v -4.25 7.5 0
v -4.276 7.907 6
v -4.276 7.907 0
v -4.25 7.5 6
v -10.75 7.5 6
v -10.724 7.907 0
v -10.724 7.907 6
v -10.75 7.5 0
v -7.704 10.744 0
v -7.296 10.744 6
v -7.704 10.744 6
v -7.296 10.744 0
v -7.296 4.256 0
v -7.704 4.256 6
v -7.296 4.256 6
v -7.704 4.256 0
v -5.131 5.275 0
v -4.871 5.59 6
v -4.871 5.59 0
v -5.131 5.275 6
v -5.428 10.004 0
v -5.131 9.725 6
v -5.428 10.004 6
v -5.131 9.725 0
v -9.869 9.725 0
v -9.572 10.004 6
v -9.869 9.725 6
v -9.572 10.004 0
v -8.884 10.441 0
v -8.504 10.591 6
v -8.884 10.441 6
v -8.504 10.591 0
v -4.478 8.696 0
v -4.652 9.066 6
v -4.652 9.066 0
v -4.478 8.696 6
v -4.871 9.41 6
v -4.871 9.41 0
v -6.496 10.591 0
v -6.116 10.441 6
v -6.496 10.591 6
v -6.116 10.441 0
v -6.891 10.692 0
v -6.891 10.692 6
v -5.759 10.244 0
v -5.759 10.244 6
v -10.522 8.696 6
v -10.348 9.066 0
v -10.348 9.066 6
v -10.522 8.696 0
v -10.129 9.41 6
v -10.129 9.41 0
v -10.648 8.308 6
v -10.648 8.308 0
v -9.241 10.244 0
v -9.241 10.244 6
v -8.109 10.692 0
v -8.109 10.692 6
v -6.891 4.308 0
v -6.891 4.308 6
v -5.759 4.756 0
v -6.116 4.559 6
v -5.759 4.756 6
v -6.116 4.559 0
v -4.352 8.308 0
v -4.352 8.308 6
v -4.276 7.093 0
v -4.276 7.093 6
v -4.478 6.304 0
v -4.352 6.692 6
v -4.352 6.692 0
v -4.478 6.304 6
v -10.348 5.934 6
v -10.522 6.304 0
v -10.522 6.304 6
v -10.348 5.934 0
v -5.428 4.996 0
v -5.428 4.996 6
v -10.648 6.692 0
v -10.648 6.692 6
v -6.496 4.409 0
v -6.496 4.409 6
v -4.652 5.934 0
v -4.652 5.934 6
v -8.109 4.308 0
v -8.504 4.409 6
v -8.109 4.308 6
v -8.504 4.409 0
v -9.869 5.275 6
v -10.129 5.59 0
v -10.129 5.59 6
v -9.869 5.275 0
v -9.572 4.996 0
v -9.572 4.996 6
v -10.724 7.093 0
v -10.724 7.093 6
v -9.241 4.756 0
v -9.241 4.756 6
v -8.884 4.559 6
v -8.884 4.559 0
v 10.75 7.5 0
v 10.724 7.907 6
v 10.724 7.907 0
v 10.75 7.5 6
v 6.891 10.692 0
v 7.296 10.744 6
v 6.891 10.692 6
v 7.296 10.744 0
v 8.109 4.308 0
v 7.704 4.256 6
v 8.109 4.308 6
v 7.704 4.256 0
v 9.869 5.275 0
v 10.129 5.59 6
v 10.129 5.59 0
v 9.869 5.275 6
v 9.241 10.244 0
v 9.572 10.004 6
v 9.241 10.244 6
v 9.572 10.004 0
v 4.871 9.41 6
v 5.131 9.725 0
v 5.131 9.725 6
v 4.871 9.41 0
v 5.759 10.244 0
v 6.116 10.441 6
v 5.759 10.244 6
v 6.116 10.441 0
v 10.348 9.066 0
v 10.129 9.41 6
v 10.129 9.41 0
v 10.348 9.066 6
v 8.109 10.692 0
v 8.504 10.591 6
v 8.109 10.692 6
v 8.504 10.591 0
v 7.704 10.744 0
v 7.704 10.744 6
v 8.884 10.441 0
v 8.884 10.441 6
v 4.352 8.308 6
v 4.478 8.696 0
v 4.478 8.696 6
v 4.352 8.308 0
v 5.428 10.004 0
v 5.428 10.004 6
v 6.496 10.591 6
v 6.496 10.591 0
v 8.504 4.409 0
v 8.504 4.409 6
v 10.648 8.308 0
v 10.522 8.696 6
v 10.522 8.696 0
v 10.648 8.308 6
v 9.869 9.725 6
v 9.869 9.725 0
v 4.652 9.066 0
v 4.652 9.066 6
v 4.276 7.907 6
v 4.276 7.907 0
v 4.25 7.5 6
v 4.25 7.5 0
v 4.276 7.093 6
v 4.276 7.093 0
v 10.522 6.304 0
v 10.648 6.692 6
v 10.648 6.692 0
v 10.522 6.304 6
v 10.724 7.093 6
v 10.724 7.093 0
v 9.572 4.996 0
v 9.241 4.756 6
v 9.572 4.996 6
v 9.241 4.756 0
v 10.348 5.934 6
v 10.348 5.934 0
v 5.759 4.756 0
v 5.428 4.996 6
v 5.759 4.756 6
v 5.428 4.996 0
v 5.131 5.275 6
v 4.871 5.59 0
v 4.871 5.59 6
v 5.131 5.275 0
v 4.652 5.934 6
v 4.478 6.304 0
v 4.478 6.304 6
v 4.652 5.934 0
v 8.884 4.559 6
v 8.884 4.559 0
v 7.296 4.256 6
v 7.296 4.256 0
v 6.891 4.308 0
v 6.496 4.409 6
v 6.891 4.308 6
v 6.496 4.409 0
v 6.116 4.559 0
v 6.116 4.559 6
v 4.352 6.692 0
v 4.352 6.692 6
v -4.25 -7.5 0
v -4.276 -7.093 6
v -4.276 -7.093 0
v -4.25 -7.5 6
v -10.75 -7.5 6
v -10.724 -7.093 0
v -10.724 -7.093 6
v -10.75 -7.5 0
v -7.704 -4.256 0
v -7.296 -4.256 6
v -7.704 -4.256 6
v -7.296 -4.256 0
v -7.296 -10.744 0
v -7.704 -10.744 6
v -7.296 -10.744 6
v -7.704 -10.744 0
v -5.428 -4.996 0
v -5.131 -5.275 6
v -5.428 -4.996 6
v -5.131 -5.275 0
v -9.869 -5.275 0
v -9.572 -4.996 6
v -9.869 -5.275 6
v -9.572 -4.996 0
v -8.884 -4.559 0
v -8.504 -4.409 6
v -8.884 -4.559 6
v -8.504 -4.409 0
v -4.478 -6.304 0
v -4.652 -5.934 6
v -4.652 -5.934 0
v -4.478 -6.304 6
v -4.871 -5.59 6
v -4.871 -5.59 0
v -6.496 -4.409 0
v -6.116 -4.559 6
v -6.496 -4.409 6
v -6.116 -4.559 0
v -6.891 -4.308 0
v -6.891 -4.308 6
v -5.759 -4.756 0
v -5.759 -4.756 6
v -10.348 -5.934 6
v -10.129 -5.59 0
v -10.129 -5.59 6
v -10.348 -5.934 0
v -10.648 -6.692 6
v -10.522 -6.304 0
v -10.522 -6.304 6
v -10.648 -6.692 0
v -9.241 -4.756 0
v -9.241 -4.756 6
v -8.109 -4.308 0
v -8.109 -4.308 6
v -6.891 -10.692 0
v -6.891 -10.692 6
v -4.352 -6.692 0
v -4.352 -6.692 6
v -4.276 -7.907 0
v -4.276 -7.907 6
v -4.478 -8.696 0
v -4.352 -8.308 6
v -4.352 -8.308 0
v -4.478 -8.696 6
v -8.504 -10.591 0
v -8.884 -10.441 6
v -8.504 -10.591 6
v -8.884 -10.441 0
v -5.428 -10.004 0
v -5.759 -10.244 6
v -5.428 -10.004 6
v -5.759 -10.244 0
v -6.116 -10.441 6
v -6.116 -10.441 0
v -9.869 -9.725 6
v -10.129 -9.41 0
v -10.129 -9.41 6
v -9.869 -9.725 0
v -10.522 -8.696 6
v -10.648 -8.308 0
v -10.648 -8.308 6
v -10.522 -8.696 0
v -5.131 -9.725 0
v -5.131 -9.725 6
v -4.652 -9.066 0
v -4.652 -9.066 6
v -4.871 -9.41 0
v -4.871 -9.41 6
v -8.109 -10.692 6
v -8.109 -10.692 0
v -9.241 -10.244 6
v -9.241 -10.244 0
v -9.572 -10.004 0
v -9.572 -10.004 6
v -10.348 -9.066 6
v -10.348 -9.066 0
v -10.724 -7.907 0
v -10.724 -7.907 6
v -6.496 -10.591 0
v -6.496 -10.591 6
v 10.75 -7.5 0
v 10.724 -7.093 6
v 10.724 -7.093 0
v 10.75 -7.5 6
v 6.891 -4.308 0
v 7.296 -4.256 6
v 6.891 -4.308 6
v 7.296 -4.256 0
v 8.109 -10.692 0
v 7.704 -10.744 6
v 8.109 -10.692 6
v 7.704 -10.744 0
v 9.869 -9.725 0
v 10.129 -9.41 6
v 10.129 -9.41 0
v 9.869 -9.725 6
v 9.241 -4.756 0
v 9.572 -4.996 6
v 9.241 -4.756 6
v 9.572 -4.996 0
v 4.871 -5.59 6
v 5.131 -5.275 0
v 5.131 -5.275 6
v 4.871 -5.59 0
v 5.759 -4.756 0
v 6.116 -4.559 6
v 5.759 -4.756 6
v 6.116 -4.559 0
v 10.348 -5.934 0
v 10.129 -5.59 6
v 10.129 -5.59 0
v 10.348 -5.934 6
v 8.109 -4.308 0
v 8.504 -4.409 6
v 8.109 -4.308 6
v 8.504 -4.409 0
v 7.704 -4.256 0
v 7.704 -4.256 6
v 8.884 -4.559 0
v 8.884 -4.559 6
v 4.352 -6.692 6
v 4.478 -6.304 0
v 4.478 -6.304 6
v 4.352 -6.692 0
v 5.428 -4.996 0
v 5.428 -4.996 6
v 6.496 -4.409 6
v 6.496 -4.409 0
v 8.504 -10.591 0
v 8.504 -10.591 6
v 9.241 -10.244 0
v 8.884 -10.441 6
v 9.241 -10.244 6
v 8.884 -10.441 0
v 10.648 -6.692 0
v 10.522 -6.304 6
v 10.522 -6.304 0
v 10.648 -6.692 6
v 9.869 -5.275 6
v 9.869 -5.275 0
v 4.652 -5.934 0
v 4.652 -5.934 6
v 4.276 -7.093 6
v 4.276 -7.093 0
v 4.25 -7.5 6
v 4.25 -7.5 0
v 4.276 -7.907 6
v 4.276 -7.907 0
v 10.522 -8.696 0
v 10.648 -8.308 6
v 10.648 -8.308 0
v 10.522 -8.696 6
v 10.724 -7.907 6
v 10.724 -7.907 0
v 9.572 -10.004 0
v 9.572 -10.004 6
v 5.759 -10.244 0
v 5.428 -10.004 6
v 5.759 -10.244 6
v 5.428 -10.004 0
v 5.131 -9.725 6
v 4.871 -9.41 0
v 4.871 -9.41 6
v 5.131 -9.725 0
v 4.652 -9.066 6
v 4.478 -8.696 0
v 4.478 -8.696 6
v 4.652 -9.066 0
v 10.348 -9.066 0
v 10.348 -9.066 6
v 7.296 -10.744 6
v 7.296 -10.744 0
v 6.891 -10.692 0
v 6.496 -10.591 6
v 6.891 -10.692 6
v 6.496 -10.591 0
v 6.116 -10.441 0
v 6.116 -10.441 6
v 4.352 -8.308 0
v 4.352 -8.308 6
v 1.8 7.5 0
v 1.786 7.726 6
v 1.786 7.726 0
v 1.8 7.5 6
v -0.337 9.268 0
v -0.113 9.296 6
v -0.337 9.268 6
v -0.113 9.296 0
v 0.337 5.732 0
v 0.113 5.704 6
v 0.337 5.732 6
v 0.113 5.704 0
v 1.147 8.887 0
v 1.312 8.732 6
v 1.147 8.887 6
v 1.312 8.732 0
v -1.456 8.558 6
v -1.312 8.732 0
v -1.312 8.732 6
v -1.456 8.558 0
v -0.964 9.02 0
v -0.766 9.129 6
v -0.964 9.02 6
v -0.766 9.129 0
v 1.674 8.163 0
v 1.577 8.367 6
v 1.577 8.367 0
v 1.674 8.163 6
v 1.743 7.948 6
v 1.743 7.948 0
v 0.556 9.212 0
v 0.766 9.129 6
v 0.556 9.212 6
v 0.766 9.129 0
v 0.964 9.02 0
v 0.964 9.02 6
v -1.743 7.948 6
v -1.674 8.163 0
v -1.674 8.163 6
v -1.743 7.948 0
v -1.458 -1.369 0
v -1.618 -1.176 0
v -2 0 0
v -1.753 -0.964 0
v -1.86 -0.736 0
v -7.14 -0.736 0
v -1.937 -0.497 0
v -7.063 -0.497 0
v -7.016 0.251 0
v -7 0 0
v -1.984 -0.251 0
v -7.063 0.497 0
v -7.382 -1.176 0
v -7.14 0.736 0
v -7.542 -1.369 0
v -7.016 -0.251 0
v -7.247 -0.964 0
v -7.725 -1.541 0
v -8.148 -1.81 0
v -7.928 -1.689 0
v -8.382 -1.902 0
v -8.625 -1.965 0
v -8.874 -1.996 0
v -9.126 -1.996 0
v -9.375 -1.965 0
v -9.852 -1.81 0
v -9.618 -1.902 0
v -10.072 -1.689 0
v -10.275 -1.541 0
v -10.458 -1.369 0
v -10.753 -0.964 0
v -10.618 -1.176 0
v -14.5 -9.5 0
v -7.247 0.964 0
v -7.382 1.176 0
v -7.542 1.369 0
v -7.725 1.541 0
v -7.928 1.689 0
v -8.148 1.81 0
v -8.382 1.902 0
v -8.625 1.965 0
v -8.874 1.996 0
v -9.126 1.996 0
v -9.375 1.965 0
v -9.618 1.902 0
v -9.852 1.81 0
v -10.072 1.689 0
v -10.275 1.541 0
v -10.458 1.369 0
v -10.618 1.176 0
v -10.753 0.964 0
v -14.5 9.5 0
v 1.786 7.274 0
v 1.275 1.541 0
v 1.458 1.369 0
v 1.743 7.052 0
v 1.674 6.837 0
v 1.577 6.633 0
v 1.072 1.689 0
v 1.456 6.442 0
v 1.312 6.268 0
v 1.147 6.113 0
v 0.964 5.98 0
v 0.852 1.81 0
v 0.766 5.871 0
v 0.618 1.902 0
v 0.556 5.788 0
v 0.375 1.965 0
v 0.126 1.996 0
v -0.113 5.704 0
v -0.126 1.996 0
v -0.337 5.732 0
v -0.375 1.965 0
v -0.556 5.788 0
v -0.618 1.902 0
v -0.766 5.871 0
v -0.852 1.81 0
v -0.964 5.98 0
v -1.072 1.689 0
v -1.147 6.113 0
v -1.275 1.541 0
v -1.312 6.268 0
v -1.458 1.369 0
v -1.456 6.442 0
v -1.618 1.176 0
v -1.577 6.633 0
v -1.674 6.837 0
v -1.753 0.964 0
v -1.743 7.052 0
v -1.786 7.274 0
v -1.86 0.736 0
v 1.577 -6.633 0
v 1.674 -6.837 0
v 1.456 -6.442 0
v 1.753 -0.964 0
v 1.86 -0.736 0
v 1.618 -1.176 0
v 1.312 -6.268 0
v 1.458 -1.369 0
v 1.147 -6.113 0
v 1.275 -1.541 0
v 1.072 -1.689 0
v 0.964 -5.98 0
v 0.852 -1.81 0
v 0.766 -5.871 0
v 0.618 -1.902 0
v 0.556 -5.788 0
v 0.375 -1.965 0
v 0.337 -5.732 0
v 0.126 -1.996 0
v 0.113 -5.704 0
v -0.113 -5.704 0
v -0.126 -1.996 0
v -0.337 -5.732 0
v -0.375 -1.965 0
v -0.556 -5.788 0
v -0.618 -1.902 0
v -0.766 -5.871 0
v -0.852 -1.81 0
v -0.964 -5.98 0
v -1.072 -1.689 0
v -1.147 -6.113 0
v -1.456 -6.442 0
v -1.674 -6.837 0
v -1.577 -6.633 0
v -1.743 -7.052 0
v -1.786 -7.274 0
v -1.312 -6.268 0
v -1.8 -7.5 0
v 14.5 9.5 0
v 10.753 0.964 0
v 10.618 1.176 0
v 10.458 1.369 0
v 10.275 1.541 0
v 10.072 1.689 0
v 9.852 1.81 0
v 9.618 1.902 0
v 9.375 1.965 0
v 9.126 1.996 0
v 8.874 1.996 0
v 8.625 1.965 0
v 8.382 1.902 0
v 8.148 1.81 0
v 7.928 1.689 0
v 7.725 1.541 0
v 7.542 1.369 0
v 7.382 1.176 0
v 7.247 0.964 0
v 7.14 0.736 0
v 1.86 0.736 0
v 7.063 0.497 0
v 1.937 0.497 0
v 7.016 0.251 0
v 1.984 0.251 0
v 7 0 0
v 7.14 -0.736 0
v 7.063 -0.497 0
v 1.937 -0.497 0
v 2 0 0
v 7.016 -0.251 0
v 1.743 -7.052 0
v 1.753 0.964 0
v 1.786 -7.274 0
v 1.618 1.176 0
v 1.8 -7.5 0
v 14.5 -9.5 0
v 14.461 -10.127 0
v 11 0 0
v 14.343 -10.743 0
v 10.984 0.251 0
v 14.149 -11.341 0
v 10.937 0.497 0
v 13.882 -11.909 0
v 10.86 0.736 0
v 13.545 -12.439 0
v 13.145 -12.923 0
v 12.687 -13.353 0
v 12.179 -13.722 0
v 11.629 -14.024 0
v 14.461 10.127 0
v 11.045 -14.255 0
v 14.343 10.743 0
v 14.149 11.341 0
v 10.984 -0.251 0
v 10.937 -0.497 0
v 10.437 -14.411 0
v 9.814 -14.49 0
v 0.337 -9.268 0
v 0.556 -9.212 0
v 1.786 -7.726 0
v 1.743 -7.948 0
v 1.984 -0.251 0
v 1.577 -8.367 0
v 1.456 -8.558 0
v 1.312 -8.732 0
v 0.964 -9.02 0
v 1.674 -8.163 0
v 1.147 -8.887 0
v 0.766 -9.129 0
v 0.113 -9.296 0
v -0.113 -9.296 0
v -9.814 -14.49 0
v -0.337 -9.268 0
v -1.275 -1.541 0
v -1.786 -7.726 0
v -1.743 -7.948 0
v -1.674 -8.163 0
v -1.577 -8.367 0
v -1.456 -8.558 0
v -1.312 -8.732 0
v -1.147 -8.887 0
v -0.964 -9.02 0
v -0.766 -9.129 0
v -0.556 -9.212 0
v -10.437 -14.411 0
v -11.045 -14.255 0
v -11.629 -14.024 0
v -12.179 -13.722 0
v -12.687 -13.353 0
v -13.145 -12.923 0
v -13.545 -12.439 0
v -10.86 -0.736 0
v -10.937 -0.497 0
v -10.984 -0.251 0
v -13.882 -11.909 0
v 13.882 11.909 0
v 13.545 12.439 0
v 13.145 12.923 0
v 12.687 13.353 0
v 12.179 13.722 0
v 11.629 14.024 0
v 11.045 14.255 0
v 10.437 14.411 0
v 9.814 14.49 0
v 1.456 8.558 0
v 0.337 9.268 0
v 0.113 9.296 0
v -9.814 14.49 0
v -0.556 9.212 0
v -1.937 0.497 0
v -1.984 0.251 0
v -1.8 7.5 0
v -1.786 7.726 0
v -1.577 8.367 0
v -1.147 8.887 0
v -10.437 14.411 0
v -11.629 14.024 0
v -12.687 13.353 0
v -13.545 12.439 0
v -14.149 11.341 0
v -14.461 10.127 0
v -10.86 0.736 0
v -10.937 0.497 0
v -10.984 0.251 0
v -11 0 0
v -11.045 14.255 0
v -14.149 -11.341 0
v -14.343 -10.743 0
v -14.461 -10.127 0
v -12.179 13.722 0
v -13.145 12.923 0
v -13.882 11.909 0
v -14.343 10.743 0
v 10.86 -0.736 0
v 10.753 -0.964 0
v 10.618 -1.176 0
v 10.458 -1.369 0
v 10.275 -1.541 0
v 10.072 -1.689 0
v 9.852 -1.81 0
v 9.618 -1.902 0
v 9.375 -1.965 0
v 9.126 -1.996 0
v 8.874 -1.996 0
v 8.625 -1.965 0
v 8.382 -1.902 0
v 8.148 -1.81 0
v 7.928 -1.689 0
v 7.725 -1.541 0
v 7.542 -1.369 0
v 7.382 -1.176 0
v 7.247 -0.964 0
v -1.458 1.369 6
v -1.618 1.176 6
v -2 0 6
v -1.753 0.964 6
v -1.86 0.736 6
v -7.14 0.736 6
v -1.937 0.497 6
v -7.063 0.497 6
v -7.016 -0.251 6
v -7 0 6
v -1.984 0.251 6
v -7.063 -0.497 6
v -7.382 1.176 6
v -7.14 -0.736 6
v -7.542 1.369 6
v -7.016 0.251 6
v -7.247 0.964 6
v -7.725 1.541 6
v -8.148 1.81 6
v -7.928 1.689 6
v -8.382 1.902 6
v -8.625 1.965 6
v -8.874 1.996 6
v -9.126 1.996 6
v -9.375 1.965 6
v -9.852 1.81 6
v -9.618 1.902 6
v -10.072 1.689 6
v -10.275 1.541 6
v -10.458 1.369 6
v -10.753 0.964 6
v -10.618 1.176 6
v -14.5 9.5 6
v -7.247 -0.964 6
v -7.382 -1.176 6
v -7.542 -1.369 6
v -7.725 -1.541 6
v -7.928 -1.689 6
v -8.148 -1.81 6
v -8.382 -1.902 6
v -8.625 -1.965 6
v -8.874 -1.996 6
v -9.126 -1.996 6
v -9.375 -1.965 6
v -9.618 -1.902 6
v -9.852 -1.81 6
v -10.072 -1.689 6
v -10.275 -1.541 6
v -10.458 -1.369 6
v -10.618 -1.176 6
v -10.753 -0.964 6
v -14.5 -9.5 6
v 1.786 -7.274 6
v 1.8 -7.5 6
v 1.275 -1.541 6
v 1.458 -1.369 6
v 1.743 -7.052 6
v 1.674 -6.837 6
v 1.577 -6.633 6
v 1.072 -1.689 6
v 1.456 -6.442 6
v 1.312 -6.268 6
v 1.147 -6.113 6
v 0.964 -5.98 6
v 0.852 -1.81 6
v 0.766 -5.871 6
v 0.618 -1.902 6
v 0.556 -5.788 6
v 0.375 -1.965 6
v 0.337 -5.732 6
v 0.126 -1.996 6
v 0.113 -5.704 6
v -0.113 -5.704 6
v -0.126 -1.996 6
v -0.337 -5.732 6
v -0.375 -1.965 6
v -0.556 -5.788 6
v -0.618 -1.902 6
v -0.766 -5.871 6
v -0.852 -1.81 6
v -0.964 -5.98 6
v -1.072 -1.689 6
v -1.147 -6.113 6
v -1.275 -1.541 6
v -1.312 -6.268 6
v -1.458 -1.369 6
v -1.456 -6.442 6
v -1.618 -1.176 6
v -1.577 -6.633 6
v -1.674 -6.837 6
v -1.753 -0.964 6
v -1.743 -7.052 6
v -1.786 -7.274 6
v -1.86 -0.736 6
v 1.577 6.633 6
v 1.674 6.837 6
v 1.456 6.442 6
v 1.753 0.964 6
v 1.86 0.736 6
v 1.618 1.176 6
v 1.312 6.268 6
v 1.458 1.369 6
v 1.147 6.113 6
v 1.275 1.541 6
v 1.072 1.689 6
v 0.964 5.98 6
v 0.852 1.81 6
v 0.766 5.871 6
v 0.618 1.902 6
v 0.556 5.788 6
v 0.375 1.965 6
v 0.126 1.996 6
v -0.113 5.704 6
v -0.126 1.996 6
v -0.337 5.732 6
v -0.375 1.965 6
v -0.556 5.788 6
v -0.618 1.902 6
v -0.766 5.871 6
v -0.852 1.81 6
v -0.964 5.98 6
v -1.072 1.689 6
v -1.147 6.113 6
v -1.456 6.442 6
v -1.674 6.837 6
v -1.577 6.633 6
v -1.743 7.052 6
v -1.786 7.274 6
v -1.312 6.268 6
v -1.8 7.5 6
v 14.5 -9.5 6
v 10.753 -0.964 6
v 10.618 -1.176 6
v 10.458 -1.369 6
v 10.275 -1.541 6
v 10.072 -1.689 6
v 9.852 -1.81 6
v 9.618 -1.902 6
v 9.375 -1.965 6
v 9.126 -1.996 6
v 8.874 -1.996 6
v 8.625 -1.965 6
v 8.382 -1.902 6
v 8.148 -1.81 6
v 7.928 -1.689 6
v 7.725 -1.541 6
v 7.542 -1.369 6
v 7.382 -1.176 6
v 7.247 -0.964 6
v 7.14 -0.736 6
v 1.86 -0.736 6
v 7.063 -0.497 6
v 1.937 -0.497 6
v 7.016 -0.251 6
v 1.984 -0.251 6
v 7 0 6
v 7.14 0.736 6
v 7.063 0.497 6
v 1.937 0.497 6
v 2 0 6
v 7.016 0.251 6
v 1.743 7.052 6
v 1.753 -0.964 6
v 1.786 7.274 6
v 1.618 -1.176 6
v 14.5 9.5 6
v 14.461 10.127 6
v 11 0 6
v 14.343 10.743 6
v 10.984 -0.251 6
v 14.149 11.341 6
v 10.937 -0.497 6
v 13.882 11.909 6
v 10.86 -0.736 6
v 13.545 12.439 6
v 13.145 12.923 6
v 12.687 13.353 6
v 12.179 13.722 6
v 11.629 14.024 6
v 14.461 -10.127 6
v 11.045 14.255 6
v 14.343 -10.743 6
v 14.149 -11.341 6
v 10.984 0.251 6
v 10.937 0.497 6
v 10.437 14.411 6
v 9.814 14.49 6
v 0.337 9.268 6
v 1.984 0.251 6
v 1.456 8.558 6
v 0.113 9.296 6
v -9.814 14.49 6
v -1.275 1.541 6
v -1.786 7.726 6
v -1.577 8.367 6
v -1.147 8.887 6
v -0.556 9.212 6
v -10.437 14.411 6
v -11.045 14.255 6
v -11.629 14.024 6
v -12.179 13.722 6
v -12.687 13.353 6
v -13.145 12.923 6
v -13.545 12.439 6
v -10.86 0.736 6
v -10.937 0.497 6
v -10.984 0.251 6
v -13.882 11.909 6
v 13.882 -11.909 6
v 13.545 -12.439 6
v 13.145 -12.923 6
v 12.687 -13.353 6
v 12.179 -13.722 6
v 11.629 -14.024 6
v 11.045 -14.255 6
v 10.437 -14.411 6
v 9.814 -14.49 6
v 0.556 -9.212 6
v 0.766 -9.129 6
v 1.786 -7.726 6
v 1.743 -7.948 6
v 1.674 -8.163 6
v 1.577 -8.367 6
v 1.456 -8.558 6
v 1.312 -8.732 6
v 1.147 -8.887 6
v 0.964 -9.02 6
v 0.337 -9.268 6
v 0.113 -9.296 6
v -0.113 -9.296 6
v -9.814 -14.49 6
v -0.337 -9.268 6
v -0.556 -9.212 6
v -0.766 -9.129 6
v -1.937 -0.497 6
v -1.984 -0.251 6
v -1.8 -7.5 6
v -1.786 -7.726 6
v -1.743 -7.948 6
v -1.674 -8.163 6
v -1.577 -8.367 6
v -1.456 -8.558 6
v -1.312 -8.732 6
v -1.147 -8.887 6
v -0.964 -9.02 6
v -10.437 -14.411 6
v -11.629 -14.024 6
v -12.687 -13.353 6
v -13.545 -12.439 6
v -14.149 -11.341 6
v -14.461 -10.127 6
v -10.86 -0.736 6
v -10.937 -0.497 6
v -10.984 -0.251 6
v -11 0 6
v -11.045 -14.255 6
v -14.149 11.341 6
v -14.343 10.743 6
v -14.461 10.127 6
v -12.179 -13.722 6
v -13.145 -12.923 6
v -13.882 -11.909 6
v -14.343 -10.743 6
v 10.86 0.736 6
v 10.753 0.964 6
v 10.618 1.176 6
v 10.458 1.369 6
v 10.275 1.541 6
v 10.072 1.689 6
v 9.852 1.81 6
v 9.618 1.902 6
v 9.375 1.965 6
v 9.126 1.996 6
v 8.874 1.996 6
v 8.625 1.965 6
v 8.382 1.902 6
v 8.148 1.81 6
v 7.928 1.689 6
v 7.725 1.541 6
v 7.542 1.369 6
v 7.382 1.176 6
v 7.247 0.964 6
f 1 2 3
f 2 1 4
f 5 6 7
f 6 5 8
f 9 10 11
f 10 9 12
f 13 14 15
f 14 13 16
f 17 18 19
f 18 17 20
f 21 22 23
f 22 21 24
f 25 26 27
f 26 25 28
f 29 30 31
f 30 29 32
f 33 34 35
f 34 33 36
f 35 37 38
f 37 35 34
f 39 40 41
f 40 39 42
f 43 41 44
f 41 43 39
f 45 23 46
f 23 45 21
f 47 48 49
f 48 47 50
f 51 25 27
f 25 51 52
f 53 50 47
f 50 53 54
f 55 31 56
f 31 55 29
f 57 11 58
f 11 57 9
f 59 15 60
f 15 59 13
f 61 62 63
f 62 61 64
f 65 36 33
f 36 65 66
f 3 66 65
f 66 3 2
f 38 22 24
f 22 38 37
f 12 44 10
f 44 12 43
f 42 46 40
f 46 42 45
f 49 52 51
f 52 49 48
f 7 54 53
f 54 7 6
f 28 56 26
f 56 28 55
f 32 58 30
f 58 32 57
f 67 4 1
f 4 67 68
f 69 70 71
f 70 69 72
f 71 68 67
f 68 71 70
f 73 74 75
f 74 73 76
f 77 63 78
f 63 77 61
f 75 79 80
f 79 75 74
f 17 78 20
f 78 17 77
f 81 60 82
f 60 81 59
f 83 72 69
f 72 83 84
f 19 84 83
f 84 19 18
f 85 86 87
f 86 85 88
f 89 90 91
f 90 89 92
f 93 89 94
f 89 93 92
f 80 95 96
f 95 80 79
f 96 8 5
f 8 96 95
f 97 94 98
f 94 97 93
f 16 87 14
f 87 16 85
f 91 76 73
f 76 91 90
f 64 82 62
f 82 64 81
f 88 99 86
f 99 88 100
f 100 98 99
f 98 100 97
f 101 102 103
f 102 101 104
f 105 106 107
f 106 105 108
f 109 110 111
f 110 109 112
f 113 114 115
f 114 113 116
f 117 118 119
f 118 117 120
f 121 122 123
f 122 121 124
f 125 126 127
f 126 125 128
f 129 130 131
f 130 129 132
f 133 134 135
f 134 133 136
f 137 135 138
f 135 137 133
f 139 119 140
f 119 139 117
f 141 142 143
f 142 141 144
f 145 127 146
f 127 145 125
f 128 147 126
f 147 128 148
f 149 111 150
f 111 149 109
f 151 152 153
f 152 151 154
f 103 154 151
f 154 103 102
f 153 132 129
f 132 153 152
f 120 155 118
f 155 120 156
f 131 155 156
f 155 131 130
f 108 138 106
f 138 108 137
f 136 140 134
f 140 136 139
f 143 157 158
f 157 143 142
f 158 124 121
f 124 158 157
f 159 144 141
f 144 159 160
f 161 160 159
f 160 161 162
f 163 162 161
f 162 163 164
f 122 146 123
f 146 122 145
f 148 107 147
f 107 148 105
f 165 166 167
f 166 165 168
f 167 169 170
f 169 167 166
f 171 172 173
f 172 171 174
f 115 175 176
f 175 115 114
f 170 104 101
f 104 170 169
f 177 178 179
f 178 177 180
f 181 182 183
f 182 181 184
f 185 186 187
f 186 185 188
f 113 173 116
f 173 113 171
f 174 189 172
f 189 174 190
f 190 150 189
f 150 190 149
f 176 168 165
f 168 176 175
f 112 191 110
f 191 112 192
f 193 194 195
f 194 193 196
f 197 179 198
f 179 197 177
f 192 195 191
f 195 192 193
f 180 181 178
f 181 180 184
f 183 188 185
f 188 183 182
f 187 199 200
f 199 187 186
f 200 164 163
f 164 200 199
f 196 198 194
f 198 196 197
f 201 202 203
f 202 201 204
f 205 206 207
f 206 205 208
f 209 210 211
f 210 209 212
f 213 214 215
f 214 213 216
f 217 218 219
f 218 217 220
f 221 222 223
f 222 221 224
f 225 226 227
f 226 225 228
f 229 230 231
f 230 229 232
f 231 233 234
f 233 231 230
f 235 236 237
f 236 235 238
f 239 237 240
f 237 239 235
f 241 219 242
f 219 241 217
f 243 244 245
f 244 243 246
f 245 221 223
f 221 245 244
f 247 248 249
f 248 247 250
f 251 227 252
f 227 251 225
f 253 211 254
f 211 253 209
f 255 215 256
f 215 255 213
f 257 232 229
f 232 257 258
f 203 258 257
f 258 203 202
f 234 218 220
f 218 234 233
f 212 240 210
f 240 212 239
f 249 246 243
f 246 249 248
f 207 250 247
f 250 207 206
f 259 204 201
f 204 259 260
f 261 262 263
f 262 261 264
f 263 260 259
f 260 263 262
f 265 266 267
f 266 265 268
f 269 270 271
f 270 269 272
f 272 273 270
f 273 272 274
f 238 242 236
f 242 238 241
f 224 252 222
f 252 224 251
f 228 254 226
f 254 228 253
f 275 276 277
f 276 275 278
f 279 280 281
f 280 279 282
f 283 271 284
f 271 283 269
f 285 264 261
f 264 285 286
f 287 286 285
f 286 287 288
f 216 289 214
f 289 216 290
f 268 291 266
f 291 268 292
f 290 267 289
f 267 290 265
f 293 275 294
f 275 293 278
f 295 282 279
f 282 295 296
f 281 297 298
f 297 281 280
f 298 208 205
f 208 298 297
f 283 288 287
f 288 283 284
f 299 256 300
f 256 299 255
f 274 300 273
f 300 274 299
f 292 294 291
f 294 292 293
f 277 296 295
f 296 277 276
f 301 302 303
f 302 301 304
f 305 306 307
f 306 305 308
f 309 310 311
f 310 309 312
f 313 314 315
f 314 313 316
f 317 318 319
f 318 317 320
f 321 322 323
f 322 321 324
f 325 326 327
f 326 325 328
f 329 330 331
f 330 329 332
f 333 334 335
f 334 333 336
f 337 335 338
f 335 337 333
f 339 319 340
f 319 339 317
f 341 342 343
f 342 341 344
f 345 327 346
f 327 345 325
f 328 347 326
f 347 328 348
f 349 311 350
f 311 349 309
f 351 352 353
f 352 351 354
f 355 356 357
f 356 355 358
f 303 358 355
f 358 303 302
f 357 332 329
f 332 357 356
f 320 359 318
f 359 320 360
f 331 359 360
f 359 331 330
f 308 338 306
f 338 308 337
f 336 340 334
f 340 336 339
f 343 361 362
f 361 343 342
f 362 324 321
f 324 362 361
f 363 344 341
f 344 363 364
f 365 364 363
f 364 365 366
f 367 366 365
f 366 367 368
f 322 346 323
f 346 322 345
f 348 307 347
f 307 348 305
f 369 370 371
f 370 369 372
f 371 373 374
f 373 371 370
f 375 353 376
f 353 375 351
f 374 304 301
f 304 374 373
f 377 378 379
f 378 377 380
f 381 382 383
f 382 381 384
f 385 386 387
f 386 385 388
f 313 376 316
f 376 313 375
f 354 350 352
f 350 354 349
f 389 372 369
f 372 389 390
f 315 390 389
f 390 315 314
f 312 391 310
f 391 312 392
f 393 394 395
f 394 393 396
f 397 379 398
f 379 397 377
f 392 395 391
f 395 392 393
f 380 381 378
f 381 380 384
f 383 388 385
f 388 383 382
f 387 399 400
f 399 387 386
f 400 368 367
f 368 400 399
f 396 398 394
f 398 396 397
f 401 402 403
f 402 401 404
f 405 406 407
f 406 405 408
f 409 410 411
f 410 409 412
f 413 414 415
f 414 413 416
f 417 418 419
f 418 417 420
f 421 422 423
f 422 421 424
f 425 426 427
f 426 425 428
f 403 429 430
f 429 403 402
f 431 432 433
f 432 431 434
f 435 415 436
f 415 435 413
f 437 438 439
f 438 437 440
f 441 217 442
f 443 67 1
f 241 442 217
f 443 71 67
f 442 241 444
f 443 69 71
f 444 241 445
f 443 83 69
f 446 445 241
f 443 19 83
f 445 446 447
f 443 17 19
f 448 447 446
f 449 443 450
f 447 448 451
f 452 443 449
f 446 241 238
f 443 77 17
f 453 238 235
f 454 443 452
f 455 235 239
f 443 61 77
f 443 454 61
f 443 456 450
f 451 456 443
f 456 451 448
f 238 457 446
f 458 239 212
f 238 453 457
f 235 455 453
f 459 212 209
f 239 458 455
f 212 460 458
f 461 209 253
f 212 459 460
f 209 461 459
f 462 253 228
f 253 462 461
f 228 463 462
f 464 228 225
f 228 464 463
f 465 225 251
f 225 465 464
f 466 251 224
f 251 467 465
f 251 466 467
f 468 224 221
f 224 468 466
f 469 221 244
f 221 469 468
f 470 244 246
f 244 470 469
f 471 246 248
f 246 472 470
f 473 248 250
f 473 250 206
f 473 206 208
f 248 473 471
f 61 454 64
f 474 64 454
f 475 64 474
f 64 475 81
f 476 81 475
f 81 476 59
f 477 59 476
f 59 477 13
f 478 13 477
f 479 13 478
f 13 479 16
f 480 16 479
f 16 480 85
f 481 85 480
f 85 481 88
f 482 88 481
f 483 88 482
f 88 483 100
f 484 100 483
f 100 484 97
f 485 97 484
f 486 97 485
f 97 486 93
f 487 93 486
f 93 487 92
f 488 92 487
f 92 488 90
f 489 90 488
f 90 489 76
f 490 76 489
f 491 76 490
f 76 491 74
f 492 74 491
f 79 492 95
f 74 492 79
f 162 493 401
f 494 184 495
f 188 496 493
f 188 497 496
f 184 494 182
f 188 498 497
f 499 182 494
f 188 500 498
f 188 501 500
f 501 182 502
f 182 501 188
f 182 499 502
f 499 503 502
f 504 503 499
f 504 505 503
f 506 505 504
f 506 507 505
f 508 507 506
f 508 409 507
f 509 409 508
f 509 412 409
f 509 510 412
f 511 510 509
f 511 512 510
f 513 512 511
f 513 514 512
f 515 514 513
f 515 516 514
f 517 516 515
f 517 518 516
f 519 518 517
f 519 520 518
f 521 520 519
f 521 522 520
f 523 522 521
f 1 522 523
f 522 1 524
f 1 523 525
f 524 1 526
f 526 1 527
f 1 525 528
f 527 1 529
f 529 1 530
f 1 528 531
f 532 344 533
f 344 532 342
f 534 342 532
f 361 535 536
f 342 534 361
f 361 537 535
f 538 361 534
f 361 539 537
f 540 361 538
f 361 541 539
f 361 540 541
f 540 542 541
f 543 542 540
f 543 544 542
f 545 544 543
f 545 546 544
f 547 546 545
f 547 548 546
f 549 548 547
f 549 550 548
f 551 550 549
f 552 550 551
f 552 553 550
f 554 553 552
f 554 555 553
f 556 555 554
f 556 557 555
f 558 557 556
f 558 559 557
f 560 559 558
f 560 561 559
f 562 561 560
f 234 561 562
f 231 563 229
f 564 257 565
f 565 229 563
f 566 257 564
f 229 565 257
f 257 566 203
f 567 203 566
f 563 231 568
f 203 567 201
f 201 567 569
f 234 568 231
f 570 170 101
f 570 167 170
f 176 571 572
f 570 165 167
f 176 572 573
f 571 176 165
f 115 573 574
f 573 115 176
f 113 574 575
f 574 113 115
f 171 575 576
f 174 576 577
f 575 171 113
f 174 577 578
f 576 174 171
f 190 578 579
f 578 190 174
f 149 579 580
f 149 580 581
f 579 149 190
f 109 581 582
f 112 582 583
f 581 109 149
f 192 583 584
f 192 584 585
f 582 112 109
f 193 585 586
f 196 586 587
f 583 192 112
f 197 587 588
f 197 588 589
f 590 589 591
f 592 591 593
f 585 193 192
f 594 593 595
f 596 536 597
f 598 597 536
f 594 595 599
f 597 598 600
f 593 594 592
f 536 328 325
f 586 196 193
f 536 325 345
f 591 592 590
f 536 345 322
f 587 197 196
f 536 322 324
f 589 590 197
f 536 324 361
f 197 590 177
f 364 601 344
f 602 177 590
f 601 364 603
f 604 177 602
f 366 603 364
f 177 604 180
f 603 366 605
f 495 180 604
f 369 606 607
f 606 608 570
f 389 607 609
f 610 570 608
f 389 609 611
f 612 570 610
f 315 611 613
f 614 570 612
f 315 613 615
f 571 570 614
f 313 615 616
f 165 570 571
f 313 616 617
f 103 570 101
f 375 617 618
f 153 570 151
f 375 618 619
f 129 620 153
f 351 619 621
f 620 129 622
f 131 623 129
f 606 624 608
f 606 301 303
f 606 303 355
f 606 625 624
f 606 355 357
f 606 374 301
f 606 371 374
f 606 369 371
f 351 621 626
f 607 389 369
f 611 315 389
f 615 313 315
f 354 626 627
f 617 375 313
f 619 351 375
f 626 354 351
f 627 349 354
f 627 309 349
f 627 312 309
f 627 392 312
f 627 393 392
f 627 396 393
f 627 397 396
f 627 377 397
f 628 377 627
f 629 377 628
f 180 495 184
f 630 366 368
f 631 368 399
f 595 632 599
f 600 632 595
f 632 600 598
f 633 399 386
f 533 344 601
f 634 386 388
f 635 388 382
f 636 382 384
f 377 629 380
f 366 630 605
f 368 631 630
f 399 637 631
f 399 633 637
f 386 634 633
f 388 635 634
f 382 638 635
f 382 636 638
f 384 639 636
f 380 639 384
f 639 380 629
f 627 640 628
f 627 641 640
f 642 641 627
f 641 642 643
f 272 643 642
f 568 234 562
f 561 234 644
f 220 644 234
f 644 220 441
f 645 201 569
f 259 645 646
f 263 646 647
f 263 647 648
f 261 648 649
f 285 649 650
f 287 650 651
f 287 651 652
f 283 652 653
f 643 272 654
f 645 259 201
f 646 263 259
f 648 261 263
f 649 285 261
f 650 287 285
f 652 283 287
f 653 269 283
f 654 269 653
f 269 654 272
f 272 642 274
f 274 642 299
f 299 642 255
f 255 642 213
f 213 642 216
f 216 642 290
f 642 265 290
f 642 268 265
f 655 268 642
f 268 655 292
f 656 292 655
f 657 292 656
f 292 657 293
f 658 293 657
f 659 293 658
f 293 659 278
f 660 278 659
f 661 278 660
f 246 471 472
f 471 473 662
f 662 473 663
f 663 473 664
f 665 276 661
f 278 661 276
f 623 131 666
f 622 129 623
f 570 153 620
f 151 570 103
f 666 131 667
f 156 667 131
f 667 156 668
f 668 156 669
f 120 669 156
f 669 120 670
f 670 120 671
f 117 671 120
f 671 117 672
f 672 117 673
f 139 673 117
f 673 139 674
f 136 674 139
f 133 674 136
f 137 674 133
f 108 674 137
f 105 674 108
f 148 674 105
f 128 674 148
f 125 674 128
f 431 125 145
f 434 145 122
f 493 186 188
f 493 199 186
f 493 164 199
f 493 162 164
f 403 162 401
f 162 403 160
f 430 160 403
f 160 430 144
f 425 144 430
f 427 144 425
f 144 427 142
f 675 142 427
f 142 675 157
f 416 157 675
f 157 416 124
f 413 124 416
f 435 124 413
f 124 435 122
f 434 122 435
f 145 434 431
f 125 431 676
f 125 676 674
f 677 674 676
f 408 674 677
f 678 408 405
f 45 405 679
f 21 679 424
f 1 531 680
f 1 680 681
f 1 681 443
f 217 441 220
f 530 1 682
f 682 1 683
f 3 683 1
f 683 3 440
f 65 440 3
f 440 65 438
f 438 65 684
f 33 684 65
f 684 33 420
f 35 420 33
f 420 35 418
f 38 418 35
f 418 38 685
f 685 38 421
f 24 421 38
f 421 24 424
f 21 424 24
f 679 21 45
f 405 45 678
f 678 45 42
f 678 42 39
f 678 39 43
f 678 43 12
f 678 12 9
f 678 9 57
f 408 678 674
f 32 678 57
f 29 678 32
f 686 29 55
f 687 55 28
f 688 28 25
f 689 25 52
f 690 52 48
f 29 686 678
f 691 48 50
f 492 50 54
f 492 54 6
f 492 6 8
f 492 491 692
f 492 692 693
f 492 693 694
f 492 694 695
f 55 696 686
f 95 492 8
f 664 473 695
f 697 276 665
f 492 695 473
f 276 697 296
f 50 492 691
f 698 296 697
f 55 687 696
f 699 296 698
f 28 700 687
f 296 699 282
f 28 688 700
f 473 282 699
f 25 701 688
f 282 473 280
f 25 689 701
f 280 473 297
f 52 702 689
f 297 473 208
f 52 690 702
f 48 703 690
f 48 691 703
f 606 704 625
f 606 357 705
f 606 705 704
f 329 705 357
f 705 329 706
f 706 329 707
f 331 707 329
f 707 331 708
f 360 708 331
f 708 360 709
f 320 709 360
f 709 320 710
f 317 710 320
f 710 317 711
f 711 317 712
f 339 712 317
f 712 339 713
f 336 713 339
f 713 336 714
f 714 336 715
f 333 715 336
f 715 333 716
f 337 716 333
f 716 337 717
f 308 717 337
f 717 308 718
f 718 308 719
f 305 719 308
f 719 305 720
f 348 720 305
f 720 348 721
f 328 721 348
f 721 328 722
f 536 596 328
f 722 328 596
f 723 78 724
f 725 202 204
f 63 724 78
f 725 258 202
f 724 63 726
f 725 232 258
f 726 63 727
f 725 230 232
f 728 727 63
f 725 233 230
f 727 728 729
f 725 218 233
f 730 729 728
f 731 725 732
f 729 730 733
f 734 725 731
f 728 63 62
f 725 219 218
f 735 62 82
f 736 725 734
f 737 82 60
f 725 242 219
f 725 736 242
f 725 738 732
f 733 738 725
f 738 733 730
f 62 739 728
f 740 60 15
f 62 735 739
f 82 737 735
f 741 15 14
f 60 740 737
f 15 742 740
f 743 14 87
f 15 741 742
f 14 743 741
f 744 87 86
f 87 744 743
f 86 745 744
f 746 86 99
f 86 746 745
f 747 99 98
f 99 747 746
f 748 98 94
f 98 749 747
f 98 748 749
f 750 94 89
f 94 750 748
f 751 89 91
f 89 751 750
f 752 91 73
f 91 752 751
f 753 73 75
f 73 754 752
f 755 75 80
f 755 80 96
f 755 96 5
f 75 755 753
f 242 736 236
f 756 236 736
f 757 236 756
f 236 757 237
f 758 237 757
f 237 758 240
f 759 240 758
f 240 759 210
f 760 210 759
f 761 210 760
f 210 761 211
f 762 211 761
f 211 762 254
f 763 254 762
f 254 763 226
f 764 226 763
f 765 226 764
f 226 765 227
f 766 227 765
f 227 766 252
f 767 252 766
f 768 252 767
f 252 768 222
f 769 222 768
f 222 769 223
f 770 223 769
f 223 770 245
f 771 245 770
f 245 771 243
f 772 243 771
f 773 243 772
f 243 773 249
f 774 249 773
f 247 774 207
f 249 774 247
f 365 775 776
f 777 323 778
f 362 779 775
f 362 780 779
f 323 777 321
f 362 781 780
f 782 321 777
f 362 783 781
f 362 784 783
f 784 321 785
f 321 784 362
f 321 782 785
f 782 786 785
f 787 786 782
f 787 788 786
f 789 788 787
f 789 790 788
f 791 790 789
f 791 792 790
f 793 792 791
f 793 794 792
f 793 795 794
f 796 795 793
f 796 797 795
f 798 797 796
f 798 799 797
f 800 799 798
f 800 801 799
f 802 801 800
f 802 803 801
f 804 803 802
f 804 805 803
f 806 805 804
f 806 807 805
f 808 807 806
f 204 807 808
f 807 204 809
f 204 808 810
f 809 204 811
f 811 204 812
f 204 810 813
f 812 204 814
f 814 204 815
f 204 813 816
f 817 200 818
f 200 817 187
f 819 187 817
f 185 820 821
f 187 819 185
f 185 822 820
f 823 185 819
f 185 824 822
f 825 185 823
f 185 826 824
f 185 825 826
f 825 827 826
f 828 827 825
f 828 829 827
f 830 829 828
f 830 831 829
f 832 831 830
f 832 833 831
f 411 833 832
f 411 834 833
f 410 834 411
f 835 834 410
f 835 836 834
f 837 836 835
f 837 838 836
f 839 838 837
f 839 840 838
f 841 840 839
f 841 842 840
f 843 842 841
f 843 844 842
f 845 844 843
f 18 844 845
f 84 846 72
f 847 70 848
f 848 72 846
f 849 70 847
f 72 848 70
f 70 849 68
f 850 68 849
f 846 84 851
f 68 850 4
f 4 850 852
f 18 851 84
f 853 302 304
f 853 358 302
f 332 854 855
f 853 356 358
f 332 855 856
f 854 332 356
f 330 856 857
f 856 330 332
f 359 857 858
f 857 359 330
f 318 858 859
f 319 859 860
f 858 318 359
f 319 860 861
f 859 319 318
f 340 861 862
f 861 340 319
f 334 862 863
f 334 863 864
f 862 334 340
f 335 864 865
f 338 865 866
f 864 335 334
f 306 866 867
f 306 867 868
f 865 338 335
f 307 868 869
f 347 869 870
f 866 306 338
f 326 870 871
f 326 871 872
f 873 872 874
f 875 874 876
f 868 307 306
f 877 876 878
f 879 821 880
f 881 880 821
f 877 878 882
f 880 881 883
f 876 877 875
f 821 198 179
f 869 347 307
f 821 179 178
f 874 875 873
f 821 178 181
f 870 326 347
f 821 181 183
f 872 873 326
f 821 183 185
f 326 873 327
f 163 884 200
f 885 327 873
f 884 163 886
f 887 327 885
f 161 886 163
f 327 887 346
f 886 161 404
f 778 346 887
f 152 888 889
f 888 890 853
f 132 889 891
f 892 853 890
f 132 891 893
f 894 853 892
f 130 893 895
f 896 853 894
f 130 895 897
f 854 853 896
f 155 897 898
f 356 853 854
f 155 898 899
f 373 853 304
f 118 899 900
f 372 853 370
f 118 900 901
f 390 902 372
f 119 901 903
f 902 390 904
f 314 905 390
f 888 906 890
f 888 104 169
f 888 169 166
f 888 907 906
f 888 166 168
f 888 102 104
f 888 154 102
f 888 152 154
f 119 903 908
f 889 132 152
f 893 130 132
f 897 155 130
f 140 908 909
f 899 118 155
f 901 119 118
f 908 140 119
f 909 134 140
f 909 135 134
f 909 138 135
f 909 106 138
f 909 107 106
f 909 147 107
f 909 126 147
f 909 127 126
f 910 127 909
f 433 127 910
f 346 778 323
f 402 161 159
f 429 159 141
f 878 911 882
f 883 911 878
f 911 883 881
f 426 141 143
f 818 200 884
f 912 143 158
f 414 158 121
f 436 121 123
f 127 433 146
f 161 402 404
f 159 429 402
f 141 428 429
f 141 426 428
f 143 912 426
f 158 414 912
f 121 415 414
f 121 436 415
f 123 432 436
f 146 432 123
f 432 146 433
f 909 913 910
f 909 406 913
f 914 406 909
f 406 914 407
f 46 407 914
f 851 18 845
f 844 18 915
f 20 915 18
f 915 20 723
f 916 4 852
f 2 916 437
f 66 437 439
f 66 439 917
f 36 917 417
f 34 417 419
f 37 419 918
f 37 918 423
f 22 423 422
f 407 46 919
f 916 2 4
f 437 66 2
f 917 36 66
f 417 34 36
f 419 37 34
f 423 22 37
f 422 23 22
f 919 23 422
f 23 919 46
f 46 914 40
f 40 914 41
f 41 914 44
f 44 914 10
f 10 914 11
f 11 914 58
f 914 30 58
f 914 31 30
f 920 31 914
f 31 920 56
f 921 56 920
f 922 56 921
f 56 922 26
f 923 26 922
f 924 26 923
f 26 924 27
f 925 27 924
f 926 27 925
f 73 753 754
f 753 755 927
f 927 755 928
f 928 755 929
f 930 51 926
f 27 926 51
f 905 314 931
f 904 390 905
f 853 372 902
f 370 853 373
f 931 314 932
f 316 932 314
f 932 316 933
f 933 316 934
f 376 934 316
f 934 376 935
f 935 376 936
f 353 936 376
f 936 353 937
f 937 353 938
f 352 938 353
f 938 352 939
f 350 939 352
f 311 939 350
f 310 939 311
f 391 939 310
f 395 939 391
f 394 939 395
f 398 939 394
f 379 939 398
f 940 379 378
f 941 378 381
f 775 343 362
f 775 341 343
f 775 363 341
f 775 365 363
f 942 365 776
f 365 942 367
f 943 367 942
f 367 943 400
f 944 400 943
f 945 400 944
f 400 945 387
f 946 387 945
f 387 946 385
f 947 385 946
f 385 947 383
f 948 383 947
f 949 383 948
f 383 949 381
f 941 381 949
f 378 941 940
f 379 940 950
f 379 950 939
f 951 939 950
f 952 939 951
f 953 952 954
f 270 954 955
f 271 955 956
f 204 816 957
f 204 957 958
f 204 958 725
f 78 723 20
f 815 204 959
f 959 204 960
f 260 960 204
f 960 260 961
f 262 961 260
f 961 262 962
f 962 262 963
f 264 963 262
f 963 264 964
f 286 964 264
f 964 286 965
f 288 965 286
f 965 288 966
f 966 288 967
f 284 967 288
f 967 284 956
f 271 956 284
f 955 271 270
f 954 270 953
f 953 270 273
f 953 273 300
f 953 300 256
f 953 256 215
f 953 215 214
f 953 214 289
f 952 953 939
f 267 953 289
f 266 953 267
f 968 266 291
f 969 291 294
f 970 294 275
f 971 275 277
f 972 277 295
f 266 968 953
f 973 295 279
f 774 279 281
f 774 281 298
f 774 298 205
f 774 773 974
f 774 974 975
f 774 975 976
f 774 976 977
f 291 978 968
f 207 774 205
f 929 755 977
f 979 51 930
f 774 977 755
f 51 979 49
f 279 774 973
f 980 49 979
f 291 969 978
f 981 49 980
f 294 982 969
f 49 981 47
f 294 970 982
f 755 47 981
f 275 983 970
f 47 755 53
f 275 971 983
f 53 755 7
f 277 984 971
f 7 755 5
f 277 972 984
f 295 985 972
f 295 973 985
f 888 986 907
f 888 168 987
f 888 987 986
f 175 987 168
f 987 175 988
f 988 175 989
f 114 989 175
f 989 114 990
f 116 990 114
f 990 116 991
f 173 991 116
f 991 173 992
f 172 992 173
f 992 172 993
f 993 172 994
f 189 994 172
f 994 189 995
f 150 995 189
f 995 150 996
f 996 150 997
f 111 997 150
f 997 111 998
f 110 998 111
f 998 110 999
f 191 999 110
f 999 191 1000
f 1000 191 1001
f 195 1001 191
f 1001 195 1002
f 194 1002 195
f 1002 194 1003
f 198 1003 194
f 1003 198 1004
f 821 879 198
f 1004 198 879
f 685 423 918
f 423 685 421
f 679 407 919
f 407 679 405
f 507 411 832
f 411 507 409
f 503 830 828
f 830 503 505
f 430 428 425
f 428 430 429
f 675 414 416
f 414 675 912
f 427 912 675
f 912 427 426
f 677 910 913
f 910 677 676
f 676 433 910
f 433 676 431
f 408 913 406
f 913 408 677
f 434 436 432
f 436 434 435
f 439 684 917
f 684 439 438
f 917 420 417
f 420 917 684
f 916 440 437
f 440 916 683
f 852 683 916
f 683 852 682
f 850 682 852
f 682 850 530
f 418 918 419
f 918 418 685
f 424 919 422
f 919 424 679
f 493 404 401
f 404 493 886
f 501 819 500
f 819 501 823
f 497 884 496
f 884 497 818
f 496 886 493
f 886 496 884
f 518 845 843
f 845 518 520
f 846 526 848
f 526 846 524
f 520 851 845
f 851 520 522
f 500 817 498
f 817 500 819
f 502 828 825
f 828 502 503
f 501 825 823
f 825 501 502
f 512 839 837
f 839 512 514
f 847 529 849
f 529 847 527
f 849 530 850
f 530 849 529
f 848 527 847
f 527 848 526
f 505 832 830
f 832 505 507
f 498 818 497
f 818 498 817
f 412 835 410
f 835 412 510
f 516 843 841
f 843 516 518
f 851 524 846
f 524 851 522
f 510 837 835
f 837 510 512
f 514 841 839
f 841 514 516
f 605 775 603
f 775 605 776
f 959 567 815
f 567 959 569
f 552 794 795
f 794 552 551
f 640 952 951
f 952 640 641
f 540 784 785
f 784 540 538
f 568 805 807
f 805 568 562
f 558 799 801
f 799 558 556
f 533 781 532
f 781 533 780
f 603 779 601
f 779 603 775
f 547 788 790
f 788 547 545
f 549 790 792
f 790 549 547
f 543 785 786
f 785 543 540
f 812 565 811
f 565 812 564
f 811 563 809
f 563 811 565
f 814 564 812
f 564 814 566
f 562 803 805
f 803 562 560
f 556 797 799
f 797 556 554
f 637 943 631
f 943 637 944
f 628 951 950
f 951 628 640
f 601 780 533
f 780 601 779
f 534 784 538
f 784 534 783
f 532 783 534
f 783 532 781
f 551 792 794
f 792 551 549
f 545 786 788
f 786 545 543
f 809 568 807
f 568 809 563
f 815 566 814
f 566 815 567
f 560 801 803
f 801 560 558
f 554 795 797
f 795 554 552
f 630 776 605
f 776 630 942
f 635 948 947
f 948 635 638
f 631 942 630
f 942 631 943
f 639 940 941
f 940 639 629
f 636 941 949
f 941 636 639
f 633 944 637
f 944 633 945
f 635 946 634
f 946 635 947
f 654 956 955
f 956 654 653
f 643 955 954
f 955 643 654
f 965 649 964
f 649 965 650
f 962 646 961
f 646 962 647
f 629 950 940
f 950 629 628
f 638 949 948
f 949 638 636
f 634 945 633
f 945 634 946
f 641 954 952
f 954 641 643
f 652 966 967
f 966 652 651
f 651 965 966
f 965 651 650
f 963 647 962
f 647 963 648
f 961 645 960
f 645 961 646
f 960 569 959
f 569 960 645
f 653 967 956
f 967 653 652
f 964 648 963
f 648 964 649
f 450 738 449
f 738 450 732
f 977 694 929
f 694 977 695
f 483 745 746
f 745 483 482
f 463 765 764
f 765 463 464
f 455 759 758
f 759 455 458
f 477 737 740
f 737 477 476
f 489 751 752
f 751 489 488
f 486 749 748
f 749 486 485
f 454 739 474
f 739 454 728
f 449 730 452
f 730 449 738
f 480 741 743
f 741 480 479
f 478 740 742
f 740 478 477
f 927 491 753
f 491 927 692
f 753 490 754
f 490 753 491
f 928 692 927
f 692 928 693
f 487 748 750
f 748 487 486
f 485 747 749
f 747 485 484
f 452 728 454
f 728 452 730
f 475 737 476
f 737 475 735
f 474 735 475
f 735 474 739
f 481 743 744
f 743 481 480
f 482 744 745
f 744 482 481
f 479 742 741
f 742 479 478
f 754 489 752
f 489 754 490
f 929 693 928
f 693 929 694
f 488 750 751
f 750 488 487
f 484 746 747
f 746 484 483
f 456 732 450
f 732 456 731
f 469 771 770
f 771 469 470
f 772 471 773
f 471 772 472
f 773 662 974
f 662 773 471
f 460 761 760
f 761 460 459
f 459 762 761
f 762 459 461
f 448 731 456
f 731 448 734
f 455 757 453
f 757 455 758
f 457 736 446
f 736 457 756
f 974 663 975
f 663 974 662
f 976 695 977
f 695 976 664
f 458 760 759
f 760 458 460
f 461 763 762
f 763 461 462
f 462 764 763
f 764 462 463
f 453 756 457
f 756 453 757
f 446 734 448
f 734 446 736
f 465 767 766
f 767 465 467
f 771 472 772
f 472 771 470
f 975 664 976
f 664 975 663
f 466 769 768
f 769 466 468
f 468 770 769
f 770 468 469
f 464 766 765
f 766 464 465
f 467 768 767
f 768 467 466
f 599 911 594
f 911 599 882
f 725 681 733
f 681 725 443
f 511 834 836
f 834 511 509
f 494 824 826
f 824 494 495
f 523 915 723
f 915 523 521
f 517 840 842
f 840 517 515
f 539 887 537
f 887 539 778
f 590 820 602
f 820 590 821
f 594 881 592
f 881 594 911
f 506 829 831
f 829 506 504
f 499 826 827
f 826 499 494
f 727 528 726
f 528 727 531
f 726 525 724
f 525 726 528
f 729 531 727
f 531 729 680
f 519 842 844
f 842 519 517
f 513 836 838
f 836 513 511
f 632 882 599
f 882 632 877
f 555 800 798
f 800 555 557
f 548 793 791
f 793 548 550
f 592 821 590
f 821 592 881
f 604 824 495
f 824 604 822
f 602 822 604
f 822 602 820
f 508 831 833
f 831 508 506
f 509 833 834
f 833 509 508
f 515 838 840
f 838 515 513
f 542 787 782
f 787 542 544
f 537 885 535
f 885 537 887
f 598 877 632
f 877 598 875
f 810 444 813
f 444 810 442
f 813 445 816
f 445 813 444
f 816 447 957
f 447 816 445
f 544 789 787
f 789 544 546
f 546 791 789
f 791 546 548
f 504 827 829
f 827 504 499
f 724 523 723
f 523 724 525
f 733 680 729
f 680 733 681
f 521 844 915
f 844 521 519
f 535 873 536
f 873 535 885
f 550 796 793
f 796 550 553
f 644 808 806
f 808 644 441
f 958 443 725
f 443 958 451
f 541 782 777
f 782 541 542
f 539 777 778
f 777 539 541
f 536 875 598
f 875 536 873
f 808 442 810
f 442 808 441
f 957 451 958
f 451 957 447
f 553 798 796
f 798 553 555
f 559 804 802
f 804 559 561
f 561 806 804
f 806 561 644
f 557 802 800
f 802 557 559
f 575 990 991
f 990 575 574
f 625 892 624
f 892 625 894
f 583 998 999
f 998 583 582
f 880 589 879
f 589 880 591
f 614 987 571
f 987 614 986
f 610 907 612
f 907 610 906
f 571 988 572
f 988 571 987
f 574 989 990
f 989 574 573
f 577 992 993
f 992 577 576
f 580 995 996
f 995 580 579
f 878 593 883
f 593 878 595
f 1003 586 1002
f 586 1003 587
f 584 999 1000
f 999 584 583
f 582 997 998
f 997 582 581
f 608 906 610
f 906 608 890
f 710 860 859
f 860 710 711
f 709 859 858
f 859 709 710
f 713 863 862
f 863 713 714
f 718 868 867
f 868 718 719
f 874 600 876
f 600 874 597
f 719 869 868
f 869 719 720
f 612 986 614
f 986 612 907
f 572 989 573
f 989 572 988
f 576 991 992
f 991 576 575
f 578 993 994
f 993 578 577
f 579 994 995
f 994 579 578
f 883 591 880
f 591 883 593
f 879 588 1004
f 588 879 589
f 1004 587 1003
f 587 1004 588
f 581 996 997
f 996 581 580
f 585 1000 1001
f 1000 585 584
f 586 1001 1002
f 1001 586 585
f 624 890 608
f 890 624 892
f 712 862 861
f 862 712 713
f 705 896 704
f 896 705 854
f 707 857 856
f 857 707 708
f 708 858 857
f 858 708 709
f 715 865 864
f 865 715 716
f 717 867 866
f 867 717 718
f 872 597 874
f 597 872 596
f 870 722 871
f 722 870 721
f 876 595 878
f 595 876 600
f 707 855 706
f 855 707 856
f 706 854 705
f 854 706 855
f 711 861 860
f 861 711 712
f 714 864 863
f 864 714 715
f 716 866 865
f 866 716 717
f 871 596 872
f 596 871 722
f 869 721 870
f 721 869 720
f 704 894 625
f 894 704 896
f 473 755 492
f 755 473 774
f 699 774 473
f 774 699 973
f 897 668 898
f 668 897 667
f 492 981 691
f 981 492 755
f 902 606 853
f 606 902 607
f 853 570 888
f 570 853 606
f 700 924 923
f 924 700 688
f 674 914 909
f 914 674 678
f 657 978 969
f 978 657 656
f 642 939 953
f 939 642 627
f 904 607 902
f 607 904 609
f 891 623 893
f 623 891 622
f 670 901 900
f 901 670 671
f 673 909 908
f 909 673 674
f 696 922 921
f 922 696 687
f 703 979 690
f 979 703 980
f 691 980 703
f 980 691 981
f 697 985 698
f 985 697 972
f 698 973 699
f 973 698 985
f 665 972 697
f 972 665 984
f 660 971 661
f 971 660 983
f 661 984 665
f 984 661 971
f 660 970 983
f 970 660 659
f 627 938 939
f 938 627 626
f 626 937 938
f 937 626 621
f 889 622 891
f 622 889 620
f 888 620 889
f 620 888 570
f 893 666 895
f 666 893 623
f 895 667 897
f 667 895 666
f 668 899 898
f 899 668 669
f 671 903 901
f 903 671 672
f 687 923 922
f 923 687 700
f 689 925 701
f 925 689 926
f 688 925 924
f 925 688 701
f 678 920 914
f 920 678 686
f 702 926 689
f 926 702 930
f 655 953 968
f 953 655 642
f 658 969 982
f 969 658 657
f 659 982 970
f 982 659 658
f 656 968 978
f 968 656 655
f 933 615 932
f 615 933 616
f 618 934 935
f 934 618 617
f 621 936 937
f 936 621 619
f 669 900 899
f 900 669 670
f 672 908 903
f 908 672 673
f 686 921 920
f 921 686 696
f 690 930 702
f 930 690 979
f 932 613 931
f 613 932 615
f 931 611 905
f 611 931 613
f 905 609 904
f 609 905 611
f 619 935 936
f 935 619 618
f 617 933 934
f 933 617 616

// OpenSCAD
$fn = 50;


difference() {
	union() {
		hull() {
			translate(v = [-9.5000000000, 9.5000000000, 0]) {
				cylinder(h = 6, r = 5);
			}
			translate(v = [9.5000000000, 9.5000000000, 0]) {
				cylinder(h = 6, r = 5);
			}
			translate(v = [-9.5000000000, -9.5000000000, 0]) {
				cylinder(h = 6, r = 5);
			}
			translate(v = [9.5000000000, -9.5000000000, 0]) {
				cylinder(h = 6, r = 5);
			}
		}
	}
	union() {
		#translate(v = [-7.5000000000, 7.5000000000, 0]) {
			cylinder(h = 6, r = 3.2500000000);
		}
		#translate(v = [7.5000000000, 7.5000000000, 0]) {
			cylinder(h = 6, r = 3.2500000000);
		}
		#translate(v = [-7.5000000000, -7.5000000000, 0]) {
			cylinder(h = 6, r = 3.2500000000);
		}
		#translate(v = [7.5000000000, -7.5000000000, 0]) {
			cylinder(h = 6, r = 3.2500000000);
		}
		#translate(v = [-7.5000000000, -7.5000000000, -100.0000000000]) {
			cylinder(h = 200, r = 3.2500000000);
		}
		#translate(v = [-7.5000000000, 7.5000000000, -100.0000000000]) {
			cylinder(h = 200, r = 3.2500000000);
		}
		#translate(v = [7.5000000000, -7.5000000000, -100.0000000000]) {
			cylinder(h = 200, r = 3.2500000000);
		}
		#translate(v = [7.5000000000, 7.5000000000, -100.0000000000]) {
			cylinder(h = 200, r = 3.2500000000);
		}
		#translate(v = [-7.5000000000, 7.5000000000, 0]) {
			cylinder(h = 6, r = 1.8000000000);
		}
		#translate(v = [0.0000000000, 7.5000000000, 0]) {
			cylinder(h = 6, r = 1.8000000000);
		}
		#translate(v = [7.5000000000, 7.5000000000, 0]) {
			cylinder(h = 6, r = 1.8000000000);
		}
		#translate(v = [-7.5000000000, -7.5000000000, 0]) {
			cylinder(h = 6, r = 1.8000000000);
		}
		#translate(v = [0.0000000000, -7.5000000000, 0]) {
			cylinder(h = 6, r = 1.8000000000);
		}
		#translate(v = [7.5000000000, -7.5000000000, 0]) {
			cylinder(h = 6, r = 1.8000000000);
		}
		#translate(v = [-7.5000000000, 7.5000000000, 0]) {
			cylinder(h = 6, r = 1.8000000000);
		}
		#translate(v = [0.0000000000, 7.5000000000, 0]) {
			cylinder(h = 6, r = 1.8000000000);
		}
		#translate(v = [7.5000000000, 7.5000000000, 0]) {
			cylinder(h = 6, r = 1.8000000000);
		}
		#translate(v = [-7.5000000000, -7.5000000000, 0]) {
			cylinder(h = 6, r = 1.8000000000);
		}
		#translate(v = [0.0000000000, -7.5000000000, 0]) {
			cylinder(h = 6, r = 1.8000000000);
		}
		#translate(v = [7.5000000000, -7.5000000000, 0]) {
			cylinder(h = 6, r = 1.8000000000);
		}
		#translate(v = [-7.5000000000, 7.5000000000, 0]) {
			cylinder(h = 6, r = 1.8000000000);
		}
		#translate(v = [0.0000000000, 7.5000000000, 0]) {
			cylinder(h = 6, r = 1.8000000000);
		}
		#translate(v = [7.5000000000, 7.5000000000, 0]) {
			cylinder(h = 6, r = 1.8000000000);
		}
		#translate(v = [-7.5000000000, -7.5000000000, 0]) {
			cylinder(h = 6, r = 1.8000000000);
		}
		#translate(v = [0.0000000000, -7.5000000000, 0]) {
			cylinder(h = 6, r = 1.8000000000);
		}
		#translate(v = [7.5000000000, -7.5000000000, 0]) {
			cylinder(h = 6, r = 1.8000000000);
		}
		#translate(v = [-9.0000000000, 0, 0]) {
			cylinder(h = 6, r = 2.0000000000);
		}
		#cylinder(h = 6, r = 2.0000000000);
		#translate(v = [9.0000000000, 0, 0]) {
			cylinder(h = 6, r = 2.0000000000);
		}
	}
}
